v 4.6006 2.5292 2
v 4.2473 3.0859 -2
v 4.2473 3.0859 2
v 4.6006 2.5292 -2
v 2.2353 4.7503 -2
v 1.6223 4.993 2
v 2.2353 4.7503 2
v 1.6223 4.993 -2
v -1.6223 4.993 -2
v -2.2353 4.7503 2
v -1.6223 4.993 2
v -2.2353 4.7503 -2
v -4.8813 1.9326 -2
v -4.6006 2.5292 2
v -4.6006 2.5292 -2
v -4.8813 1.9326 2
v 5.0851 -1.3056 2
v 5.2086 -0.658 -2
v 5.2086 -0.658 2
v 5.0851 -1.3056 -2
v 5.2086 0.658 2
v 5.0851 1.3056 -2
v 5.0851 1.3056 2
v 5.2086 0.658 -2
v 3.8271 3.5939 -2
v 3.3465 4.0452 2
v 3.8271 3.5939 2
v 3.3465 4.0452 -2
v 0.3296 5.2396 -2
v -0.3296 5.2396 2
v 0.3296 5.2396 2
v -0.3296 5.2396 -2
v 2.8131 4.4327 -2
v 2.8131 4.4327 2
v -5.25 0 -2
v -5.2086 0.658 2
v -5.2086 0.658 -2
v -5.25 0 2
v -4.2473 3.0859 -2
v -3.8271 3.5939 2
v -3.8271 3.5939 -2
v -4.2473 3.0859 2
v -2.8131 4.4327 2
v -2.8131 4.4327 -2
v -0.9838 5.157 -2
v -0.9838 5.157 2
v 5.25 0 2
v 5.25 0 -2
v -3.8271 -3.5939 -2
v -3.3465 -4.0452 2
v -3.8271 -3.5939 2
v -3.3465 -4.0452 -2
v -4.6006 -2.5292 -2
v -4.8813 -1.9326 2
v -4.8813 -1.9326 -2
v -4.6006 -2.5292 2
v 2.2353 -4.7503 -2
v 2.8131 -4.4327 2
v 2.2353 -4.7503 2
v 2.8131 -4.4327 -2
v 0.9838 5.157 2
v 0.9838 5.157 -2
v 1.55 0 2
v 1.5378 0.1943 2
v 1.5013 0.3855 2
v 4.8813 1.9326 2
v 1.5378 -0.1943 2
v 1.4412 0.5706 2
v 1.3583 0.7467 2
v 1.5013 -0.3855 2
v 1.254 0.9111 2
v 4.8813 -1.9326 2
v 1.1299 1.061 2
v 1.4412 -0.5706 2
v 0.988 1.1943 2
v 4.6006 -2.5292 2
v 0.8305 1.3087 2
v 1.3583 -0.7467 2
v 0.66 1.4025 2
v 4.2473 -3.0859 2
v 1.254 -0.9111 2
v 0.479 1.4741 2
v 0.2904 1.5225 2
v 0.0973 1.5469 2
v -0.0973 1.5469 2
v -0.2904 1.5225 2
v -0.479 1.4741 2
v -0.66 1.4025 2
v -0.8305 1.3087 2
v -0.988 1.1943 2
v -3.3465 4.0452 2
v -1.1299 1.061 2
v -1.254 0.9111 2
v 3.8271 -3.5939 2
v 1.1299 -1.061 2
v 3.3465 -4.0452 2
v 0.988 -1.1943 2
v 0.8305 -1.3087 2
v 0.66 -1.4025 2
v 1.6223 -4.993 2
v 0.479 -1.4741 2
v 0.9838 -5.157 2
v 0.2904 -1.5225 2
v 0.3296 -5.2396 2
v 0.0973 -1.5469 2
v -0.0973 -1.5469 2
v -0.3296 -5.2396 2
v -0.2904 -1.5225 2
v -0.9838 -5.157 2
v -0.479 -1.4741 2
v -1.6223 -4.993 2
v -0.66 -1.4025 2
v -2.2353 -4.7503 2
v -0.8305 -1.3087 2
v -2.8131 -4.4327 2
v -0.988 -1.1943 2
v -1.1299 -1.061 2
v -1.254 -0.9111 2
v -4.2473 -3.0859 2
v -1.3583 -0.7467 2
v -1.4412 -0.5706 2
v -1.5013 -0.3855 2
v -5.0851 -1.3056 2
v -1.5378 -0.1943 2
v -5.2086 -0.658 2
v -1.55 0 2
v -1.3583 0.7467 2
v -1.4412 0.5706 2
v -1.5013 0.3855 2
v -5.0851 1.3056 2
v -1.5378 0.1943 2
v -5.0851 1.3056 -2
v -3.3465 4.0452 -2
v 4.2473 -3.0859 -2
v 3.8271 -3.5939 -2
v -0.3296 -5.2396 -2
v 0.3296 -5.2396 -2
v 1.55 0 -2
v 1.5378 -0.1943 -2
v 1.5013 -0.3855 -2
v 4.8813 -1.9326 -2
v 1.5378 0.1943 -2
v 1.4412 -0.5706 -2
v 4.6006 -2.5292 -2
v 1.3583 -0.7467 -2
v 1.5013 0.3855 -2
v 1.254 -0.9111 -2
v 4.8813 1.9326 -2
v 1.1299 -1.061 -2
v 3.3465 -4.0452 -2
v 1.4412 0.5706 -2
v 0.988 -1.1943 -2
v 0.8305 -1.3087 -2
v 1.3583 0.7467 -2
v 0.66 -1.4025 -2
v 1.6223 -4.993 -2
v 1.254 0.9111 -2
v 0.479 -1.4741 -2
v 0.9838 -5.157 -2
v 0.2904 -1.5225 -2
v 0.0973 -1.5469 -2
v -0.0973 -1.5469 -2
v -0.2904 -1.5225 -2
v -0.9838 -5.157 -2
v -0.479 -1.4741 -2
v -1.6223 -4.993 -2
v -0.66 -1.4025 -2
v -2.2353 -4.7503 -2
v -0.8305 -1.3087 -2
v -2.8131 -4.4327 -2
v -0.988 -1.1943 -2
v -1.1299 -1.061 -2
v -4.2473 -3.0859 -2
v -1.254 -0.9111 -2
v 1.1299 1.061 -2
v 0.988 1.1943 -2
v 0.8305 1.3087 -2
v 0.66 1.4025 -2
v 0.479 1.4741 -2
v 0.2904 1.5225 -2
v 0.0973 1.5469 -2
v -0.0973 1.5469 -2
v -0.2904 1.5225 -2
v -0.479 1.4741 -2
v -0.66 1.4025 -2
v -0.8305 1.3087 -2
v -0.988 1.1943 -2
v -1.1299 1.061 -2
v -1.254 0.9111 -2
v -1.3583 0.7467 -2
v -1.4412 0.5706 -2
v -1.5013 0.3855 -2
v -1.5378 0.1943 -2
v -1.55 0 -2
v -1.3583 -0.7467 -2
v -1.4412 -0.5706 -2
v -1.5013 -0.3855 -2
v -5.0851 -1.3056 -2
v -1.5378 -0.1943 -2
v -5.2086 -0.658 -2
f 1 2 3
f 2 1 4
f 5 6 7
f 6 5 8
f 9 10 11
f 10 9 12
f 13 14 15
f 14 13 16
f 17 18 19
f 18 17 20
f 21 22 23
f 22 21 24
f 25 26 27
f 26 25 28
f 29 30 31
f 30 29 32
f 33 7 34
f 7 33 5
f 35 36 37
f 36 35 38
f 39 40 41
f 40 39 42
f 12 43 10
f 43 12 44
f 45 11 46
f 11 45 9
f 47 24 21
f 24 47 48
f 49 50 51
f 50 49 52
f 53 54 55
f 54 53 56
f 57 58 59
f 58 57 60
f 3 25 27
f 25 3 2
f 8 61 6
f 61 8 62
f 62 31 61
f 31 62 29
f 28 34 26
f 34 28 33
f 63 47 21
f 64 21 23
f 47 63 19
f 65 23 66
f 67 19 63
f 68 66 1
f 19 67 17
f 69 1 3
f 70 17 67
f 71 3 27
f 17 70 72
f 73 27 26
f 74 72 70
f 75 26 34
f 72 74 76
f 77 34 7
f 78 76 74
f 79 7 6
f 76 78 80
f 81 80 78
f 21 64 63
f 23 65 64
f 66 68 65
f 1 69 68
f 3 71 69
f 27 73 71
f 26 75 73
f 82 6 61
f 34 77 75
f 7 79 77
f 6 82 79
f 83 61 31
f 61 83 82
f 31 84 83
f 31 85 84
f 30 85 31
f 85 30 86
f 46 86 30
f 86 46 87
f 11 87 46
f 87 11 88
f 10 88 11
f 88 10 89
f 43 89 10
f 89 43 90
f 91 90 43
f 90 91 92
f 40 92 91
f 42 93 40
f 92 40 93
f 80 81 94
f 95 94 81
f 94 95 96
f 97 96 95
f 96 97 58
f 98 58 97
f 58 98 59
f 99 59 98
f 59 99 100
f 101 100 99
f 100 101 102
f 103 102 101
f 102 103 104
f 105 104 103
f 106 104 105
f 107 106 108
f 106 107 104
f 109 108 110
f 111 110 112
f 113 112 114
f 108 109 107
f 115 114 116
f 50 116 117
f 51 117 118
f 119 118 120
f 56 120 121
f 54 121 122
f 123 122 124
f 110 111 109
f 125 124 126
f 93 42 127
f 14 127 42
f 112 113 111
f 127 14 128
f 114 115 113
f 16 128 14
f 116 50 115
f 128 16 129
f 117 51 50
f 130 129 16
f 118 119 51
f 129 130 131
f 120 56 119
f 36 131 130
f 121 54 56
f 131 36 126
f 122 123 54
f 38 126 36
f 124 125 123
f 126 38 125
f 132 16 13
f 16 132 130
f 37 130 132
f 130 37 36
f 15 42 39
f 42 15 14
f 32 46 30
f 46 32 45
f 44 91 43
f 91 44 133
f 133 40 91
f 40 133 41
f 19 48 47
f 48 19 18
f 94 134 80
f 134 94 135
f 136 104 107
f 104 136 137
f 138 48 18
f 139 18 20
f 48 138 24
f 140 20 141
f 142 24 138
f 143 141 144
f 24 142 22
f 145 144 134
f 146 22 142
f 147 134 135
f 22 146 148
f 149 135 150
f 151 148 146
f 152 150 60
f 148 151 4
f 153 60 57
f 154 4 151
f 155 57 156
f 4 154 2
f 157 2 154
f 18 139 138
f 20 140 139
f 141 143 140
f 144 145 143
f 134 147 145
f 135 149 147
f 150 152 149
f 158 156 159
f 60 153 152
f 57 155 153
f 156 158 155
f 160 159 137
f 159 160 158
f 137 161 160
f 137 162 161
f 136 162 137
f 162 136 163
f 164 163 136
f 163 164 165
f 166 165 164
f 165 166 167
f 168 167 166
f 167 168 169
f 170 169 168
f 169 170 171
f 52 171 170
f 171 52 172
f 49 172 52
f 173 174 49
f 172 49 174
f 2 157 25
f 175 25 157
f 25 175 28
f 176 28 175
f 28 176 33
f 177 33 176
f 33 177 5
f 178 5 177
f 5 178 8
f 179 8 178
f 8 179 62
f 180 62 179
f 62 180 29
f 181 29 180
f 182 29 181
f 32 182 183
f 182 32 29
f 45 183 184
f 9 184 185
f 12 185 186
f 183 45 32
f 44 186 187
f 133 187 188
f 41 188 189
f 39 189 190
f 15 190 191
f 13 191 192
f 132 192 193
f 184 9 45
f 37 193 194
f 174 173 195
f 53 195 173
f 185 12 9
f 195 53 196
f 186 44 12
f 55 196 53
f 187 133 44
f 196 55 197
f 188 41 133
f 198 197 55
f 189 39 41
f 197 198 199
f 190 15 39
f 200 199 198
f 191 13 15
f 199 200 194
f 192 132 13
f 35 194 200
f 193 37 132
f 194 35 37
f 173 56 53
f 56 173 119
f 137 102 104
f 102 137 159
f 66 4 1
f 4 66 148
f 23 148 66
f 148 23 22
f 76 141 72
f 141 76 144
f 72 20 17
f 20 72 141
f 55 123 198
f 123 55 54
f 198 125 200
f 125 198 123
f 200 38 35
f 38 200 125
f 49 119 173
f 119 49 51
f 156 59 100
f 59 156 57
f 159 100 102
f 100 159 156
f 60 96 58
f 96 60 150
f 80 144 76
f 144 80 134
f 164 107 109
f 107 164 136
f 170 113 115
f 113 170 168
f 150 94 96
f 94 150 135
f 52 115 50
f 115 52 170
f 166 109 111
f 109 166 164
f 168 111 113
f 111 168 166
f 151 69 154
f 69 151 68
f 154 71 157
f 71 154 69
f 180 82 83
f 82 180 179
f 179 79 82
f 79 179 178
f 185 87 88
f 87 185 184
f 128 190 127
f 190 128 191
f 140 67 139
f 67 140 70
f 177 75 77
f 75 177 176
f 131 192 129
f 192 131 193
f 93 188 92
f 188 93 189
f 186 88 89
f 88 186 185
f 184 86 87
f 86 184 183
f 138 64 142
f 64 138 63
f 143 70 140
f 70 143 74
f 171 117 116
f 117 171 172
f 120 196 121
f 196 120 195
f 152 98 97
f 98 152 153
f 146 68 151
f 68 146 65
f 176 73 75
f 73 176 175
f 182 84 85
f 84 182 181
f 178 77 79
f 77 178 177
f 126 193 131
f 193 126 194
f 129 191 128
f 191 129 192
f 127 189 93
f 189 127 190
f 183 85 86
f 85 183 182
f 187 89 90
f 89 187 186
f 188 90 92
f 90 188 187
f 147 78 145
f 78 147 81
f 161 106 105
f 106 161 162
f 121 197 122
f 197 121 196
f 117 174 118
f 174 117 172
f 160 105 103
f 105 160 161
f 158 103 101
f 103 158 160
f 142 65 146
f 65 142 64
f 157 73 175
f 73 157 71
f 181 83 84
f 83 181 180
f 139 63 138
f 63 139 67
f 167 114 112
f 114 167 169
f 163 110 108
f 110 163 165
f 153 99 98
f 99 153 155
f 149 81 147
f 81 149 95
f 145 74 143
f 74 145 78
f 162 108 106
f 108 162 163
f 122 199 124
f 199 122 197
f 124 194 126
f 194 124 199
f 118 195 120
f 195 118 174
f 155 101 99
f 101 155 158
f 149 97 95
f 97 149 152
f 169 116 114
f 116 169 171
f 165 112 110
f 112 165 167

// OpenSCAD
$fn = 50;


difference() {
	union() {
		translate(v = [0, 0, -2.0000000000]) {
			cylinder(h = 4, r = 5.2500000000);
		}
	}
	union() {
		translate(v = [0, 0, -100.0000000000]) {
			cylinder(h = 200, r = 1.5500000000);
		}
	}
}
